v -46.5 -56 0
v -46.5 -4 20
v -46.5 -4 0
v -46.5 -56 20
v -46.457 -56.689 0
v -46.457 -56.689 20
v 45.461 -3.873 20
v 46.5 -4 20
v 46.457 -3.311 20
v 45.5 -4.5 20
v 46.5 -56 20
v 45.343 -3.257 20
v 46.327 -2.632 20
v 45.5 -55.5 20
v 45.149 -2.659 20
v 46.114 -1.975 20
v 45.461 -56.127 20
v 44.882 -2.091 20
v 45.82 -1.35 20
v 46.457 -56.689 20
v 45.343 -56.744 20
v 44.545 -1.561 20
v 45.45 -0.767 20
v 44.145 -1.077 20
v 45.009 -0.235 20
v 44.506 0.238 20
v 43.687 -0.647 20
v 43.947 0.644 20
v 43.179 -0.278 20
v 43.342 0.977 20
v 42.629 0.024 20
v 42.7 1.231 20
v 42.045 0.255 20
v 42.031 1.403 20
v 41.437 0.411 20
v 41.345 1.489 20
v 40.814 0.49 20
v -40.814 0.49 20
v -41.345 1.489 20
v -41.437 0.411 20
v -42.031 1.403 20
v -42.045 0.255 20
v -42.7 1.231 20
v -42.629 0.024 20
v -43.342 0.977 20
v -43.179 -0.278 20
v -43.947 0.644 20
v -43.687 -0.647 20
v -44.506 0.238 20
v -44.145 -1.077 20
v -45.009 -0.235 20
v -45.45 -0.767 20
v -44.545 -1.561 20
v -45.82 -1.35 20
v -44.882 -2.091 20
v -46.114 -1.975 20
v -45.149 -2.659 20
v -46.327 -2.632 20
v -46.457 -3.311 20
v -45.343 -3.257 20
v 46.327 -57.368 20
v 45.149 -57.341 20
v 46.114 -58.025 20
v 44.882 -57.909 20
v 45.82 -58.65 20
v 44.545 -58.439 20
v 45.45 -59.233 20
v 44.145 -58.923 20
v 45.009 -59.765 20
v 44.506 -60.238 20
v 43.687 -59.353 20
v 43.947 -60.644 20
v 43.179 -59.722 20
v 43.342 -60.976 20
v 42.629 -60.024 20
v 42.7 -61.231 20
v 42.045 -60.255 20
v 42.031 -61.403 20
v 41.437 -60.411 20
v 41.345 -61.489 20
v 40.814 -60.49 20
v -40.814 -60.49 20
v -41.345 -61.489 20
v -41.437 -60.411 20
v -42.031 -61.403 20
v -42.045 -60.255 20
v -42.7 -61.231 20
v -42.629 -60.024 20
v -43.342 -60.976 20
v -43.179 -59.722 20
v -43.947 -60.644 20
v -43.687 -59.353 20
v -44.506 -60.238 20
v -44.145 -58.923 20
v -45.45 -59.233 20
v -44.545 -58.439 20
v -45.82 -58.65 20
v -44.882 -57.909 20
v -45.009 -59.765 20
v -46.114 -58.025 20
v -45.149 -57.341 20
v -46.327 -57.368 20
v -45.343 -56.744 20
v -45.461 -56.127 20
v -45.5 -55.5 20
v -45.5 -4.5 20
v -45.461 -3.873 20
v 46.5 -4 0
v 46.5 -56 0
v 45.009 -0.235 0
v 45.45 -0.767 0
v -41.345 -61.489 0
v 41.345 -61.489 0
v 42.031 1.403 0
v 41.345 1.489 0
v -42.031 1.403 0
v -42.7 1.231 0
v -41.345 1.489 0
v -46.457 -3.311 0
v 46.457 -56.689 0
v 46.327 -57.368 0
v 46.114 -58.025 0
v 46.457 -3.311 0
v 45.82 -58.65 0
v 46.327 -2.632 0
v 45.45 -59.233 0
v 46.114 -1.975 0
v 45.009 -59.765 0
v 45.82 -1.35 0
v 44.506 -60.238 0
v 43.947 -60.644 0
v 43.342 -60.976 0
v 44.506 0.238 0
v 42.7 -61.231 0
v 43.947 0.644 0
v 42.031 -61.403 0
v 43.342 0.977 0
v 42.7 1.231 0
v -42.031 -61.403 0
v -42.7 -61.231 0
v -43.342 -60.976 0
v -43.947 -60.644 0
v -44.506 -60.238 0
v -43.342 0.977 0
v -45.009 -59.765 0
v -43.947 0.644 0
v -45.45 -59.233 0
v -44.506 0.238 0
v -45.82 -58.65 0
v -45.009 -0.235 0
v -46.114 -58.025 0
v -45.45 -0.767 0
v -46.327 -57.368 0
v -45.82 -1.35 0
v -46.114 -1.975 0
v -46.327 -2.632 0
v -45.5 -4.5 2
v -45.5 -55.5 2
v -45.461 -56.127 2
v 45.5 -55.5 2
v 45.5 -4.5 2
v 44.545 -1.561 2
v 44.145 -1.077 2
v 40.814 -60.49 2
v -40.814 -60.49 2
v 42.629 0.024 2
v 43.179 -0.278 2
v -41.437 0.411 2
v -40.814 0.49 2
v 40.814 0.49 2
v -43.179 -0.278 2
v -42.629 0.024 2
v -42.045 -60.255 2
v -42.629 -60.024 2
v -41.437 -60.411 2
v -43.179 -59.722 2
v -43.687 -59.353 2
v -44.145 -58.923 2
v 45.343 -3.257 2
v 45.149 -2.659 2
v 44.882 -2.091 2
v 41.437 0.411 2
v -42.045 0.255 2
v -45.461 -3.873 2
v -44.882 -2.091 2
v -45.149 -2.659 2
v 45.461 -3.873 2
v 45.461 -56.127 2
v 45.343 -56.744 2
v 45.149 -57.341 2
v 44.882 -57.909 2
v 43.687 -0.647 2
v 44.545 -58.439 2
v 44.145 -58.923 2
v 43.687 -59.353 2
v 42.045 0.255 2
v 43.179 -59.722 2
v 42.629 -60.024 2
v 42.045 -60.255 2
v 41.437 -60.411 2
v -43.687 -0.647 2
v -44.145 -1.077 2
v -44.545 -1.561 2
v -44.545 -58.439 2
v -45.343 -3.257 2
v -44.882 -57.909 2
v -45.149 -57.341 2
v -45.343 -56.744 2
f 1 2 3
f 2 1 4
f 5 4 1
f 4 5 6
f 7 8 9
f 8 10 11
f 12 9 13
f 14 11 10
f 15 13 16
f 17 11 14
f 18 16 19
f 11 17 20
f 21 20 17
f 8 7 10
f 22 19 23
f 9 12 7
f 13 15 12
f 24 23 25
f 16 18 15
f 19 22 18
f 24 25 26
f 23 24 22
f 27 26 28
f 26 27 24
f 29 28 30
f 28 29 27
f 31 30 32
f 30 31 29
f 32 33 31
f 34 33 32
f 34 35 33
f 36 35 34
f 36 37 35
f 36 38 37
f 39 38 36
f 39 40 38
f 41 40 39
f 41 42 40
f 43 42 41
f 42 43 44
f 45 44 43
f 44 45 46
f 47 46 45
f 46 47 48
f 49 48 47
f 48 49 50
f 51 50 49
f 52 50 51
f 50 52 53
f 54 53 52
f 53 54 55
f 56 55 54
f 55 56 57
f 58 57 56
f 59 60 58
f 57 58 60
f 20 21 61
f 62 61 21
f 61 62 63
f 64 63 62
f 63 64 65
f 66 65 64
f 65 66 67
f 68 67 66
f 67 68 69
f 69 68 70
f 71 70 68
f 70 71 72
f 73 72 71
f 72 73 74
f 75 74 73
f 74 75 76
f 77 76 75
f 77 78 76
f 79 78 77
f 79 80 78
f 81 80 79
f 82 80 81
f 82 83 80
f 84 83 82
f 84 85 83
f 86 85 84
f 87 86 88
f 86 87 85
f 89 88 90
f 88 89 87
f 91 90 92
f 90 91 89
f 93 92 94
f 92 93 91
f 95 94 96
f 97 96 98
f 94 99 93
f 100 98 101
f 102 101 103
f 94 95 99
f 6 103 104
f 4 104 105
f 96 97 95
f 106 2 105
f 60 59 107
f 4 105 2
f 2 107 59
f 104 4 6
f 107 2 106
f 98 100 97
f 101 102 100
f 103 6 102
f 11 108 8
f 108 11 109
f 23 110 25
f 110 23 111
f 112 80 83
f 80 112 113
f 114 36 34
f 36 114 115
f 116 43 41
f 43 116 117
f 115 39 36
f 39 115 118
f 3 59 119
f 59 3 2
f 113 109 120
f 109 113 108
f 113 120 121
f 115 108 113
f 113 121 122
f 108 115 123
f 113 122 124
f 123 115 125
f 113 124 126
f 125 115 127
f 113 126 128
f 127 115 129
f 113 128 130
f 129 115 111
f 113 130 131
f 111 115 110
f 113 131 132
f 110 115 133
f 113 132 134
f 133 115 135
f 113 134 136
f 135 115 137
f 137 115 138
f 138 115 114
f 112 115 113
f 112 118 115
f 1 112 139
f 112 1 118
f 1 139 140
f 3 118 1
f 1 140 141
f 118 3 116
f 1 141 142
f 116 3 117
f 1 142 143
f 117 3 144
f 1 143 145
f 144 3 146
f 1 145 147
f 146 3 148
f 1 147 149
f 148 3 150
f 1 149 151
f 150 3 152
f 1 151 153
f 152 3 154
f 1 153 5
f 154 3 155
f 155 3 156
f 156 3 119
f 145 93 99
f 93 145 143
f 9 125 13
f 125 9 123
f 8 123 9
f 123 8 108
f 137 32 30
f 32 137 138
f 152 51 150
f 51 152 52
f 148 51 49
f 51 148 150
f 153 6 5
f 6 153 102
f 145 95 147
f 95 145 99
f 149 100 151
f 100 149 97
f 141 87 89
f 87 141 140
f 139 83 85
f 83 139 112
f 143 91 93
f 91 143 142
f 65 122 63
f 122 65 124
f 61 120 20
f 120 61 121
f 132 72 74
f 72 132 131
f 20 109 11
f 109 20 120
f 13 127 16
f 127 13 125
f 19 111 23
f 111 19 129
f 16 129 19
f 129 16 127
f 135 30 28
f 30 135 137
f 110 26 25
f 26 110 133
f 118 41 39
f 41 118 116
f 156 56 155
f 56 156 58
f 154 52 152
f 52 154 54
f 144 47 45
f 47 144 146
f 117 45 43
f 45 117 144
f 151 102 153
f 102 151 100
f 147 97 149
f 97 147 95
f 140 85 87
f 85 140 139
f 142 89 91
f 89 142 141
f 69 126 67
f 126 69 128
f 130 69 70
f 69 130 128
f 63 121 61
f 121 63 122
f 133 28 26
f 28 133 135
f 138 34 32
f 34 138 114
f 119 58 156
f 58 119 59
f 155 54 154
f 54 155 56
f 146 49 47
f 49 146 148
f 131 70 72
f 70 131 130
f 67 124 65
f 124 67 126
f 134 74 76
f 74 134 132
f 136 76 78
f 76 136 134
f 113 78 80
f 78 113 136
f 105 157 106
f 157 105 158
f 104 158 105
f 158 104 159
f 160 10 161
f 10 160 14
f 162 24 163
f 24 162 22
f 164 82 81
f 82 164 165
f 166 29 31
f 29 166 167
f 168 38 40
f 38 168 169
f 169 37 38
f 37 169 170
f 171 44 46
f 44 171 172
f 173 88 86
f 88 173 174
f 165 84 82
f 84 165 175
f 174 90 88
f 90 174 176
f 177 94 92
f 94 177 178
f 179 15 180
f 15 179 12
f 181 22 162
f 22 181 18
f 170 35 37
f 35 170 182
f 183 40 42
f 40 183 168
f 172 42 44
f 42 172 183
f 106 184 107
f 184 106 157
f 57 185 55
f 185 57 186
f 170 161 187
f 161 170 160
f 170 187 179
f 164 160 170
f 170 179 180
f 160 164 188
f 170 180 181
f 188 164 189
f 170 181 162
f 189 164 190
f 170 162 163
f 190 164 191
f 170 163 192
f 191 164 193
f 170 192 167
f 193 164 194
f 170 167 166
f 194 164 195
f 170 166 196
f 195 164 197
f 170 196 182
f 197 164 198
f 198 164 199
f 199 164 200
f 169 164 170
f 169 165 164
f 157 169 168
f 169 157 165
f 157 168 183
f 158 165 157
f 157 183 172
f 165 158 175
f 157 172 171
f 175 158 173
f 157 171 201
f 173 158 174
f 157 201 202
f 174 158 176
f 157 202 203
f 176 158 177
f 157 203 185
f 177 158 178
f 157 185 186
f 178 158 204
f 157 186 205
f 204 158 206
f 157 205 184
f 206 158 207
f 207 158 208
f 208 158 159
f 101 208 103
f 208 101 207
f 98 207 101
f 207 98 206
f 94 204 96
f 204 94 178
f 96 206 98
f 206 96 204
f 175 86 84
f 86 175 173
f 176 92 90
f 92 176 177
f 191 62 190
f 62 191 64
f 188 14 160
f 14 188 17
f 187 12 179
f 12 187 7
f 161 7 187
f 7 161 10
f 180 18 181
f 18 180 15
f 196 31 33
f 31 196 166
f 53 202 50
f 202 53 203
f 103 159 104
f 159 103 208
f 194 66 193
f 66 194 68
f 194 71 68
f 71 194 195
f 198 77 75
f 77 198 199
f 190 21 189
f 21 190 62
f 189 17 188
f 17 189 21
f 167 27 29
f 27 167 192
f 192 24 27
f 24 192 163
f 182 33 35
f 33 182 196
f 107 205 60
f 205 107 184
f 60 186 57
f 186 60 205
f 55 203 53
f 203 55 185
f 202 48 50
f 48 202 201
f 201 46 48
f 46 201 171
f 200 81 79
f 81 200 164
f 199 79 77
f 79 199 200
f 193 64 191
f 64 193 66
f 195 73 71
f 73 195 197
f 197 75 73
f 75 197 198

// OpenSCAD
$fn = 50;


difference() {
	union() {
		translate(v = [0, -30.0000000000, 0]) {
			hull() {
				translate(v = [-41.0000000000, 26.0000000000, 0]) {
					cylinder(h = 20, r = 5.5000000000);
				}
				translate(v = [41.0000000000, 26.0000000000, 0]) {
					cylinder(h = 20, r = 5.5000000000);
				}
				translate(v = [-41.0000000000, -26.0000000000, 0]) {
					cylinder(h = 20, r = 5.5000000000);
				}
				translate(v = [41.0000000000, -26.0000000000, 0]) {
					cylinder(h = 20, r = 5.5000000000);
				}
			}
		}
	}
	union() {
		translate(v = [0, -30.0000000000, 2]) {
			hull() {
				translate(v = [-40.5000000000, 25.5000000000, 0]) {
					cylinder(h = 40, r = 5);
				}
				translate(v = [40.5000000000, 25.5000000000, 0]) {
					cylinder(h = 40, r = 5);
				}
				translate(v = [-40.5000000000, -25.5000000000, 0]) {
					cylinder(h = 40, r = 5);
				}
				translate(v = [40.5000000000, -25.5000000000, 0]) {
					cylinder(h = 40, r = 5);
				}
			}
		}
	}
}
